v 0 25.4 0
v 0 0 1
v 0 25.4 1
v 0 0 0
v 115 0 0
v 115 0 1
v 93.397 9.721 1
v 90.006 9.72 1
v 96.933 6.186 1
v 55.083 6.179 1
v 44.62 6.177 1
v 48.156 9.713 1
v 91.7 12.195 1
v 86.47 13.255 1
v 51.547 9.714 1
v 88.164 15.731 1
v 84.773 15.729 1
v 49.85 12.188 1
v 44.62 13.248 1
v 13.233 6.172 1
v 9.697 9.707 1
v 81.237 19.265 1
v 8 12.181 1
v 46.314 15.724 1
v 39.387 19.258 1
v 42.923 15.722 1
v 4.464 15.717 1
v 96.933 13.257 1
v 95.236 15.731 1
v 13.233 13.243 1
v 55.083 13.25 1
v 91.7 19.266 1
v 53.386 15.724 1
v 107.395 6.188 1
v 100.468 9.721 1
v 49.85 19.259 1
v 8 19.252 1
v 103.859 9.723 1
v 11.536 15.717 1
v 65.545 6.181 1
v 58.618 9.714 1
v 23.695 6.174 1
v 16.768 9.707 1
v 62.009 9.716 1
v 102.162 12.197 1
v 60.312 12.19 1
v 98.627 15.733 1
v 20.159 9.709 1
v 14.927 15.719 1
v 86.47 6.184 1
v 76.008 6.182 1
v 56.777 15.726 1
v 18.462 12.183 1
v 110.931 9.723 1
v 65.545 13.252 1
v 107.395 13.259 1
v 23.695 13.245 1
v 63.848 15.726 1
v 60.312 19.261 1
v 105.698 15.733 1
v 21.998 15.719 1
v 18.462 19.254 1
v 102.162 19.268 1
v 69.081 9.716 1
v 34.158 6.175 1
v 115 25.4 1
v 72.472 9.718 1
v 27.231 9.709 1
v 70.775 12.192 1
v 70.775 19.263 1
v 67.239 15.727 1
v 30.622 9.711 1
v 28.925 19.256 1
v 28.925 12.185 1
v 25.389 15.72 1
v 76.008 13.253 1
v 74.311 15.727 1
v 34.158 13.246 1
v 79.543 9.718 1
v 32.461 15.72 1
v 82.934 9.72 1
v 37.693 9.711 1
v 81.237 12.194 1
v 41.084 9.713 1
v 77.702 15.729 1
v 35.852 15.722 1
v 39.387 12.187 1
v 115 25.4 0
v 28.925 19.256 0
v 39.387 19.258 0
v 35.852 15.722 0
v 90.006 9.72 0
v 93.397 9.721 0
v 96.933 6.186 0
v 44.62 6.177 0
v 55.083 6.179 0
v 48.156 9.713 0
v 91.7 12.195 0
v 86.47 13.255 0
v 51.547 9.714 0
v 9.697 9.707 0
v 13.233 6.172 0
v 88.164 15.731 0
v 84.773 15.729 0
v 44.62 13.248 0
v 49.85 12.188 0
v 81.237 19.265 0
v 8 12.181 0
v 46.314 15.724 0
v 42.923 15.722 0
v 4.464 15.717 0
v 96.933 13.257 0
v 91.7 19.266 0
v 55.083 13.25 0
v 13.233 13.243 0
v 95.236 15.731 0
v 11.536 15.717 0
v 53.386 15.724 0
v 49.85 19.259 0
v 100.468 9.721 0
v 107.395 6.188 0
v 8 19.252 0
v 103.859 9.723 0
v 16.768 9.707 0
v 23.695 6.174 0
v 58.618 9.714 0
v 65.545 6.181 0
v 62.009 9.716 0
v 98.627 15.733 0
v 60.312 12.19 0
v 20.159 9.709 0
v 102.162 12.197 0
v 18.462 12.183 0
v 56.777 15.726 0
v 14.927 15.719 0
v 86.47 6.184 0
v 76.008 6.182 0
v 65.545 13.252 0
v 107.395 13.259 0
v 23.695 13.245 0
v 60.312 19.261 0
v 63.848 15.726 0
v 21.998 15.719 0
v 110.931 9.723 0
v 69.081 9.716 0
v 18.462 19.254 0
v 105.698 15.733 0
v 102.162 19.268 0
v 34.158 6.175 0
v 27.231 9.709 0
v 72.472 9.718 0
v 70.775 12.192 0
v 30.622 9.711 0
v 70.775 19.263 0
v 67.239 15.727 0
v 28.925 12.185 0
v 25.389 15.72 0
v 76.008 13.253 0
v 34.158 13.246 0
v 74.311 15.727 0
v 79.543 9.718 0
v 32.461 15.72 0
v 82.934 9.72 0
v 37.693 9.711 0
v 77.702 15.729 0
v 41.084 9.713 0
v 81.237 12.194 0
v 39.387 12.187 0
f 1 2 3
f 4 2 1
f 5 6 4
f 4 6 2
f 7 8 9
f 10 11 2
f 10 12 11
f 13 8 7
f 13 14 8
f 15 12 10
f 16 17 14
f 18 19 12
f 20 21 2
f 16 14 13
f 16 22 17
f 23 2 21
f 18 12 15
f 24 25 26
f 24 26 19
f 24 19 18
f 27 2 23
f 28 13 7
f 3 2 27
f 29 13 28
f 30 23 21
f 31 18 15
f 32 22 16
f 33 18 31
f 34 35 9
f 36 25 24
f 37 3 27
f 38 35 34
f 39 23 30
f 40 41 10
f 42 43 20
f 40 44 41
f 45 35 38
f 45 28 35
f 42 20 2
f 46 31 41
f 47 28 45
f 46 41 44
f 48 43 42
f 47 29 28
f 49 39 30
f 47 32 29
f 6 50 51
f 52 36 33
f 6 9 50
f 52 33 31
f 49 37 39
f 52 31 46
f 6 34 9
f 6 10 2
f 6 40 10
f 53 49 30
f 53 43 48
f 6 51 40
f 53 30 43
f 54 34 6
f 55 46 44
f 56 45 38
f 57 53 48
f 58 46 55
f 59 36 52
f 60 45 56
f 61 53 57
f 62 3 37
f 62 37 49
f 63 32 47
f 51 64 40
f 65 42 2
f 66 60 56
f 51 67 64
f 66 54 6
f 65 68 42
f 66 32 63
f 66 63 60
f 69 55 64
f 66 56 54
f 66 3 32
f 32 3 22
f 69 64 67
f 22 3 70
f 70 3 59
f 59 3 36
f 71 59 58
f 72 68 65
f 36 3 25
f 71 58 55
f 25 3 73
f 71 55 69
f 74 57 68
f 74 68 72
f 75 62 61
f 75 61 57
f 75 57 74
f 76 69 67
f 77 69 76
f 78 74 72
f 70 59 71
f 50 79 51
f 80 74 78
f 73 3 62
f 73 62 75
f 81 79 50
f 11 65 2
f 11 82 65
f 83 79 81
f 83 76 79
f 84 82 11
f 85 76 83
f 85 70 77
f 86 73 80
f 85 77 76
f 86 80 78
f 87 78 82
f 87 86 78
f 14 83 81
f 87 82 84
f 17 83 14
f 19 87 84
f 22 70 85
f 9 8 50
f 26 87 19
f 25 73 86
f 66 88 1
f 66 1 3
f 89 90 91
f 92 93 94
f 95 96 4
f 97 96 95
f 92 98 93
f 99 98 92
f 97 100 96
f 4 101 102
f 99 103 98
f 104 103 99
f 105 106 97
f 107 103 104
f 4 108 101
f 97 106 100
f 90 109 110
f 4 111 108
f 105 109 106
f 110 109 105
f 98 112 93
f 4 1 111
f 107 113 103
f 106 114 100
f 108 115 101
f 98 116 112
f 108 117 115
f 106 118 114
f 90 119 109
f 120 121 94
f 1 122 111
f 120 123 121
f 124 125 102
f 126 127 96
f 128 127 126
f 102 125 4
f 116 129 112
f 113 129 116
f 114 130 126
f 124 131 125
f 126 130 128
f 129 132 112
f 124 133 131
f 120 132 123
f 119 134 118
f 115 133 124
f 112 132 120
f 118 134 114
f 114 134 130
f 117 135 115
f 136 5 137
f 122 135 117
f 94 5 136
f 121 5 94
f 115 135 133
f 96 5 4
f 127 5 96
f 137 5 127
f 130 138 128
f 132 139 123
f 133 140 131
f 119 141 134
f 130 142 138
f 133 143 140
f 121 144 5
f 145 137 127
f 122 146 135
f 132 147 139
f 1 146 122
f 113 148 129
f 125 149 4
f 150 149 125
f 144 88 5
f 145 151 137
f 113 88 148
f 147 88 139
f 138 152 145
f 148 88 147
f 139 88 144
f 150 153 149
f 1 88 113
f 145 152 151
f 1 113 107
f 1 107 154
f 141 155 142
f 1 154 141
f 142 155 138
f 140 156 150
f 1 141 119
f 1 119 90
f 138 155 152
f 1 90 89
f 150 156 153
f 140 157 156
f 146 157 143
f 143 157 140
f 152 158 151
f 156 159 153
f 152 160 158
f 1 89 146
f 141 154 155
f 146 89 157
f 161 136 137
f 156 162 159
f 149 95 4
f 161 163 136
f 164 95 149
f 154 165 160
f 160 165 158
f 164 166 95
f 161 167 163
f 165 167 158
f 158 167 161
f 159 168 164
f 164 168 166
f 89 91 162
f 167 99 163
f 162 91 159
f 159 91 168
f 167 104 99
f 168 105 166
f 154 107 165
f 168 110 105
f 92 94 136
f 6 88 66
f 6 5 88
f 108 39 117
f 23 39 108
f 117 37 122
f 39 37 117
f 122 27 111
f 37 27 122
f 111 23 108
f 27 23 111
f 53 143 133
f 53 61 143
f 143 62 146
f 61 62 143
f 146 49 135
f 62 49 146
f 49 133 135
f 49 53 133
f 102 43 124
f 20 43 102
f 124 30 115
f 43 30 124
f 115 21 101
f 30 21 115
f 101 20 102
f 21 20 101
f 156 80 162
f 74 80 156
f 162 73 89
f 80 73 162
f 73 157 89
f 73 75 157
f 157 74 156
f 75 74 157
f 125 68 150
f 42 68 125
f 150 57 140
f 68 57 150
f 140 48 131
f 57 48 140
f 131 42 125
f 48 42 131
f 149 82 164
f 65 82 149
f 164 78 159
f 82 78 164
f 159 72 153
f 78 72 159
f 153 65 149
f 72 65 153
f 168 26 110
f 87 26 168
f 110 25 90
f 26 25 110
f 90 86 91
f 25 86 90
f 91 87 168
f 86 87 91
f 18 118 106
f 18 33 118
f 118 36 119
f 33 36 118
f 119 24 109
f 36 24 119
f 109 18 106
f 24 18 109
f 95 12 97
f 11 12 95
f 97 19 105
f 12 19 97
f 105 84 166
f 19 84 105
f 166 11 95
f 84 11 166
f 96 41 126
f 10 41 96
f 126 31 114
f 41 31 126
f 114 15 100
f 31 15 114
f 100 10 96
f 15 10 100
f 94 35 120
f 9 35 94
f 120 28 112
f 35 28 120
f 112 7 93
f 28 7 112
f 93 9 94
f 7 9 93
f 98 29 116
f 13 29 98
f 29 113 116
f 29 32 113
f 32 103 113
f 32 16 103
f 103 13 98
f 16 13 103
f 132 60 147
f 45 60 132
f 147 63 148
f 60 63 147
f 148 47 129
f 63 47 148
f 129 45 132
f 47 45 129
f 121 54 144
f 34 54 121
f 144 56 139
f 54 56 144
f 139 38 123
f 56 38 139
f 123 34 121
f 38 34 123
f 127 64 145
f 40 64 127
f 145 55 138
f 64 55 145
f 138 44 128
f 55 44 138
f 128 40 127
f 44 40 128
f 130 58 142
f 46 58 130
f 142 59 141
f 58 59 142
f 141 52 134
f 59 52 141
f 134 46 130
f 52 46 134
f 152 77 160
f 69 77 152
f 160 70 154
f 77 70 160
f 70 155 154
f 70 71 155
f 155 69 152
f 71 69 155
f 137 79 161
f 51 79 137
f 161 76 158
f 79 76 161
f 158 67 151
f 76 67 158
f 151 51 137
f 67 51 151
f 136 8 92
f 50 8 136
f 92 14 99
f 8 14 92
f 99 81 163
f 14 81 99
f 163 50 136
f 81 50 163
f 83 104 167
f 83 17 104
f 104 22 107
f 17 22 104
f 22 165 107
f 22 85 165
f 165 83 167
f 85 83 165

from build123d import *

# Parameters (mm, degrees)
BOX_W        = 115
BOX_H        = 25.4
BOX_DEPTH    = 1
POCKET_DEPTH = 5


with BuildPart() as part:
    # Box → Box (new body)
    with BuildSketch(Plane.XY):
        with Locations((57.5, 12.7)):
            Rectangle(BOX_W, BOX_H)
    extrude(amount=BOX_DEPTH)

    # Sketch (on Face6 of BaseFeature) → Pocket (cut)
    with BuildSketch(Plane.XY.offset(1)):
        Polygon((8, 12.181288), (11.535534, 15.716822), (8, 19.252356), (4.464466, 15.716822), align=None)
        Polygon((18.462497, 12.18305), (21.998031, 15.718584), (18.462497, 19.254118), (14.926963, 15.718584), align=None)
        Polygon((28.924994, 12.184812), (32.460528, 15.720346), (28.924994, 19.25588), (25.38946, 15.720346), align=None)
        Polygon((39.387491, 12.186574), (42.923025, 15.722108), (39.387491, 19.257642), (35.851957, 15.722108), align=None)
        Polygon((49.849988, 12.188336), (53.385522, 15.72387), (49.849988, 19.259404), (46.314454, 15.72387), align=None)
        Polygon((60.312485, 12.190098), (63.848019, 15.725632), (60.312485, 19.261166), (56.776951, 15.725632), align=None)
        Polygon((70.774982, 12.19186), (74.310516, 15.727394), (70.774982, 19.262928), (67.239448, 15.727394), align=None)
        Polygon((81.237479, 12.193622), (84.773013, 15.729156), (81.237479, 19.26469), (77.701945, 15.729156), align=None)
        Polygon((91.699976, 12.195384), (95.23551, 15.730918), (91.699976, 19.266452), (88.164442, 15.730918), align=None)
        Polygon((102.162473, 12.197146), (105.698007, 15.73268), (102.162473, 19.268214), (98.626939, 15.73268), align=None)
        Polygon((13.232534, 6.171852), (16.768068, 9.707386), (13.232534, 13.24292), (9.697, 9.707386), align=None)
        Polygon((23.695031, 6.173614), (27.230565, 9.709148), (23.695031, 13.244682), (20.159497, 9.709148), align=None)
        Polygon((34.157528, 6.175376), (37.693062, 9.71091), (34.157528, 13.246444), (30.621994, 9.71091), align=None)
        Polygon((44.620025, 6.177138), (48.155559, 9.712672), (44.620025, 13.248206), (41.084491, 9.712672), align=None)
        Polygon((55.082522, 6.1789), (58.618056, 9.714434), (55.082522, 13.249968), (51.546988, 9.714434), align=None)
        Polygon((65.545019, 6.180662), (69.080553, 9.716196), (65.545019, 13.25173), (62.009485, 9.716196), align=None)
        Polygon((76.007516, 6.182424), (79.54305, 9.717958), (76.007516, 13.253492), (72.471982, 9.717958), align=None)
        Polygon((86.470013, 6.184186), (90.005547, 9.71972), (86.470013, 13.255254), (82.934479, 9.71972), align=None)
        Polygon((96.93251, 6.185948), (100.468044, 9.721482), (96.93251, 13.257016), (93.396976, 9.721482), align=None)
        Polygon((107.395007, 6.18771), (110.930541, 9.723244), (107.395007, 13.258778), (103.859473, 9.723244), align=None)
    extrude(amount=-POCKET_DEPTH, mode=Mode.SUBTRACT)


solid = part.part
